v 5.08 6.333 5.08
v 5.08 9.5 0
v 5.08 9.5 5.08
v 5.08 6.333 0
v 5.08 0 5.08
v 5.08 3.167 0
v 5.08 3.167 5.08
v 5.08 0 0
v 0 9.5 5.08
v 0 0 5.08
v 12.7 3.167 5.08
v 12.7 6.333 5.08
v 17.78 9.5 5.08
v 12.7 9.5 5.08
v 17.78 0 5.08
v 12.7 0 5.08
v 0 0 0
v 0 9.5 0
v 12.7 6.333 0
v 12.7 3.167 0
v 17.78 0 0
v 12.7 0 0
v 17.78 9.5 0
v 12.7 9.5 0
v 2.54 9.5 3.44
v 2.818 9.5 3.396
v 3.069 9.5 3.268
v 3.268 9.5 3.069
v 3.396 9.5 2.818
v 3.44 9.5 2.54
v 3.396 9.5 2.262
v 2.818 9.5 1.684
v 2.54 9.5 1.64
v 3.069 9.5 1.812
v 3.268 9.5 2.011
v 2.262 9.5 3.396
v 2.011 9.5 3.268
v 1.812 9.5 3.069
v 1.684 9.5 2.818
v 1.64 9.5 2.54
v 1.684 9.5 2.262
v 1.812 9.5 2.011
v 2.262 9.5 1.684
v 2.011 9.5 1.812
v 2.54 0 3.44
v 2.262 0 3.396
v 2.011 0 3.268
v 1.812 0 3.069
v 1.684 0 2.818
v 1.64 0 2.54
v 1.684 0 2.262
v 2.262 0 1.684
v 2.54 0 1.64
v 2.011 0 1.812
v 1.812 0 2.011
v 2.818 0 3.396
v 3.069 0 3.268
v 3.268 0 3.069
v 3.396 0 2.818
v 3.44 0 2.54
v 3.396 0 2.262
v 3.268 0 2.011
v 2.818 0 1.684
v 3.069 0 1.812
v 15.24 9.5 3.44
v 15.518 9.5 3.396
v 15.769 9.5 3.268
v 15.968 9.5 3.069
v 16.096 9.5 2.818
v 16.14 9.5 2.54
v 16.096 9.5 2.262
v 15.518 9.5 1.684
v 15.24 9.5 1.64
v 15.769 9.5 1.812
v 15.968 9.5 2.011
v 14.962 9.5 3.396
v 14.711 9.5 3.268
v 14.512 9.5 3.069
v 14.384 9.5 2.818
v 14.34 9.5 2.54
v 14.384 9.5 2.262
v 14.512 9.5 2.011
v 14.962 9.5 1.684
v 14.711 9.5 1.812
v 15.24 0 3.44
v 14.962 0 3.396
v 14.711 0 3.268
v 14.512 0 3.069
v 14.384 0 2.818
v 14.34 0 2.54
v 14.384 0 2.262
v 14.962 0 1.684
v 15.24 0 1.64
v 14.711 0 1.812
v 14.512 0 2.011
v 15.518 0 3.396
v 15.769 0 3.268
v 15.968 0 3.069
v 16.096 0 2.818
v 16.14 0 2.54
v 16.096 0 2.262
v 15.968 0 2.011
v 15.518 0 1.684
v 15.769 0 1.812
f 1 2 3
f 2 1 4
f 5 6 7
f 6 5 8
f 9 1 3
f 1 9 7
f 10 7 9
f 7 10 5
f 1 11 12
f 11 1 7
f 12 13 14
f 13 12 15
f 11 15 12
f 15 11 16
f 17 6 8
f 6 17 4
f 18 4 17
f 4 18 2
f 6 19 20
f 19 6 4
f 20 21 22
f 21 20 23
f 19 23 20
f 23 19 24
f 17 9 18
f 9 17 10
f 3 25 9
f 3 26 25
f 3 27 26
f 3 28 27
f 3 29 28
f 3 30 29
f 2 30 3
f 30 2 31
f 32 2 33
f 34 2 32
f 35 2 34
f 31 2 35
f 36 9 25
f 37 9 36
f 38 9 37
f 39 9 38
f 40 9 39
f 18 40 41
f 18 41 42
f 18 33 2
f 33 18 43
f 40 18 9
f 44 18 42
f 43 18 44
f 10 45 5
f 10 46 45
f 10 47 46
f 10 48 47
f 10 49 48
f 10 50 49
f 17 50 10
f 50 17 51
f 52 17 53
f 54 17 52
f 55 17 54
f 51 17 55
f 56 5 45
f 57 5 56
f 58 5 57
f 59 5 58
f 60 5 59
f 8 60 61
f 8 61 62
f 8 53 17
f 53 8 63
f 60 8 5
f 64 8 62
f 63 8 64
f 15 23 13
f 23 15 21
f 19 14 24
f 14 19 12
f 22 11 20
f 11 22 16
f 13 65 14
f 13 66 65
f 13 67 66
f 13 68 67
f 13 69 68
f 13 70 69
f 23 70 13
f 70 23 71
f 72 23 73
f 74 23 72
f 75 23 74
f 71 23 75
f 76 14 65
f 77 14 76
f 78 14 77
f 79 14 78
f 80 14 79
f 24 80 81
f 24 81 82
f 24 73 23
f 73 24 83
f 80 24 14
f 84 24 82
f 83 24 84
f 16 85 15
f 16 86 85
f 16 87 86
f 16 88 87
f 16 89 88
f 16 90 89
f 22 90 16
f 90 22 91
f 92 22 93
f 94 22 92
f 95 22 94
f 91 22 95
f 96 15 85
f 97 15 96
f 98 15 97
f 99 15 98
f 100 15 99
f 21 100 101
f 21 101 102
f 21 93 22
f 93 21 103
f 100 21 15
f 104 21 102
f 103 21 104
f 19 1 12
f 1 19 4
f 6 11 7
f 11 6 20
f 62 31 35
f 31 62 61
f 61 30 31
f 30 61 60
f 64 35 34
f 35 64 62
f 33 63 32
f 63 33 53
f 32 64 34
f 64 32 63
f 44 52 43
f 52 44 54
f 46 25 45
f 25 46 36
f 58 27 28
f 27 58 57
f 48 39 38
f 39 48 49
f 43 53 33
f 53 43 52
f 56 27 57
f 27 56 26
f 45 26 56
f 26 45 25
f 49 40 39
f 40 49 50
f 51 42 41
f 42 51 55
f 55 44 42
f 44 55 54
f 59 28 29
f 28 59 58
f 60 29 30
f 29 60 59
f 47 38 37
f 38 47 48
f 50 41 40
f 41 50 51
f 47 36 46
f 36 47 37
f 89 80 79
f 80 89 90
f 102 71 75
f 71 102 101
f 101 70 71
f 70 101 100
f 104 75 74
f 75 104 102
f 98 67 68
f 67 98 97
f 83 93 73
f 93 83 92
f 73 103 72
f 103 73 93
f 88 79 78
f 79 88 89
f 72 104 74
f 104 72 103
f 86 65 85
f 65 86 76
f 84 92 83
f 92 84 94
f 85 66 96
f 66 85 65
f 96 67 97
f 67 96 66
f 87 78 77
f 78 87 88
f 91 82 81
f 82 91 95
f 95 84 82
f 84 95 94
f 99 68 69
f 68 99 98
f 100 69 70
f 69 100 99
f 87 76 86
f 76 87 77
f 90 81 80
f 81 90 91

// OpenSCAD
// file: ../../../share/openscad/eurorack-pcb-holder.scad
module eurorack_pcb_holder(hole_spacing, hole_diameter=1.8, width=5.08, height=9.5) {
    translate([width / 2, height / 2, width / 2]) {
        difference() {
            union() {
                cube([width, height, width], center=true);
                translate([hole_spacing, 0, 0])
                    cube([width, height, width], center=true);
                translate([hole_spacing / 2, 0, 0])
                    cube([hole_spacing, height / 3, width], center=true);
            }

            rotate([-90, 0, 0]) {
                cylinder(h=height, d=hole_diameter, $fn=20, center=true);
                translate([hole_spacing, 0, 0])
                    cylinder(h=height, d=hole_diameter, $fn=20, center=true);
            }
        }
    }
}
// main file
/*
 * SPDX-FileCopyrightText: 2021-2022 Rafael G. Martins <rafael@rafaelmartins.eng.br>
 * SPDX-License-Identifier: CERN-OHL-S-2.0
 */

include <../../../share/openscad/eurorack-pcb-holder.scad>

hole_spacing = 12.7;

// must print two of this
eurorack_pcb_holder(hole_spacing);
